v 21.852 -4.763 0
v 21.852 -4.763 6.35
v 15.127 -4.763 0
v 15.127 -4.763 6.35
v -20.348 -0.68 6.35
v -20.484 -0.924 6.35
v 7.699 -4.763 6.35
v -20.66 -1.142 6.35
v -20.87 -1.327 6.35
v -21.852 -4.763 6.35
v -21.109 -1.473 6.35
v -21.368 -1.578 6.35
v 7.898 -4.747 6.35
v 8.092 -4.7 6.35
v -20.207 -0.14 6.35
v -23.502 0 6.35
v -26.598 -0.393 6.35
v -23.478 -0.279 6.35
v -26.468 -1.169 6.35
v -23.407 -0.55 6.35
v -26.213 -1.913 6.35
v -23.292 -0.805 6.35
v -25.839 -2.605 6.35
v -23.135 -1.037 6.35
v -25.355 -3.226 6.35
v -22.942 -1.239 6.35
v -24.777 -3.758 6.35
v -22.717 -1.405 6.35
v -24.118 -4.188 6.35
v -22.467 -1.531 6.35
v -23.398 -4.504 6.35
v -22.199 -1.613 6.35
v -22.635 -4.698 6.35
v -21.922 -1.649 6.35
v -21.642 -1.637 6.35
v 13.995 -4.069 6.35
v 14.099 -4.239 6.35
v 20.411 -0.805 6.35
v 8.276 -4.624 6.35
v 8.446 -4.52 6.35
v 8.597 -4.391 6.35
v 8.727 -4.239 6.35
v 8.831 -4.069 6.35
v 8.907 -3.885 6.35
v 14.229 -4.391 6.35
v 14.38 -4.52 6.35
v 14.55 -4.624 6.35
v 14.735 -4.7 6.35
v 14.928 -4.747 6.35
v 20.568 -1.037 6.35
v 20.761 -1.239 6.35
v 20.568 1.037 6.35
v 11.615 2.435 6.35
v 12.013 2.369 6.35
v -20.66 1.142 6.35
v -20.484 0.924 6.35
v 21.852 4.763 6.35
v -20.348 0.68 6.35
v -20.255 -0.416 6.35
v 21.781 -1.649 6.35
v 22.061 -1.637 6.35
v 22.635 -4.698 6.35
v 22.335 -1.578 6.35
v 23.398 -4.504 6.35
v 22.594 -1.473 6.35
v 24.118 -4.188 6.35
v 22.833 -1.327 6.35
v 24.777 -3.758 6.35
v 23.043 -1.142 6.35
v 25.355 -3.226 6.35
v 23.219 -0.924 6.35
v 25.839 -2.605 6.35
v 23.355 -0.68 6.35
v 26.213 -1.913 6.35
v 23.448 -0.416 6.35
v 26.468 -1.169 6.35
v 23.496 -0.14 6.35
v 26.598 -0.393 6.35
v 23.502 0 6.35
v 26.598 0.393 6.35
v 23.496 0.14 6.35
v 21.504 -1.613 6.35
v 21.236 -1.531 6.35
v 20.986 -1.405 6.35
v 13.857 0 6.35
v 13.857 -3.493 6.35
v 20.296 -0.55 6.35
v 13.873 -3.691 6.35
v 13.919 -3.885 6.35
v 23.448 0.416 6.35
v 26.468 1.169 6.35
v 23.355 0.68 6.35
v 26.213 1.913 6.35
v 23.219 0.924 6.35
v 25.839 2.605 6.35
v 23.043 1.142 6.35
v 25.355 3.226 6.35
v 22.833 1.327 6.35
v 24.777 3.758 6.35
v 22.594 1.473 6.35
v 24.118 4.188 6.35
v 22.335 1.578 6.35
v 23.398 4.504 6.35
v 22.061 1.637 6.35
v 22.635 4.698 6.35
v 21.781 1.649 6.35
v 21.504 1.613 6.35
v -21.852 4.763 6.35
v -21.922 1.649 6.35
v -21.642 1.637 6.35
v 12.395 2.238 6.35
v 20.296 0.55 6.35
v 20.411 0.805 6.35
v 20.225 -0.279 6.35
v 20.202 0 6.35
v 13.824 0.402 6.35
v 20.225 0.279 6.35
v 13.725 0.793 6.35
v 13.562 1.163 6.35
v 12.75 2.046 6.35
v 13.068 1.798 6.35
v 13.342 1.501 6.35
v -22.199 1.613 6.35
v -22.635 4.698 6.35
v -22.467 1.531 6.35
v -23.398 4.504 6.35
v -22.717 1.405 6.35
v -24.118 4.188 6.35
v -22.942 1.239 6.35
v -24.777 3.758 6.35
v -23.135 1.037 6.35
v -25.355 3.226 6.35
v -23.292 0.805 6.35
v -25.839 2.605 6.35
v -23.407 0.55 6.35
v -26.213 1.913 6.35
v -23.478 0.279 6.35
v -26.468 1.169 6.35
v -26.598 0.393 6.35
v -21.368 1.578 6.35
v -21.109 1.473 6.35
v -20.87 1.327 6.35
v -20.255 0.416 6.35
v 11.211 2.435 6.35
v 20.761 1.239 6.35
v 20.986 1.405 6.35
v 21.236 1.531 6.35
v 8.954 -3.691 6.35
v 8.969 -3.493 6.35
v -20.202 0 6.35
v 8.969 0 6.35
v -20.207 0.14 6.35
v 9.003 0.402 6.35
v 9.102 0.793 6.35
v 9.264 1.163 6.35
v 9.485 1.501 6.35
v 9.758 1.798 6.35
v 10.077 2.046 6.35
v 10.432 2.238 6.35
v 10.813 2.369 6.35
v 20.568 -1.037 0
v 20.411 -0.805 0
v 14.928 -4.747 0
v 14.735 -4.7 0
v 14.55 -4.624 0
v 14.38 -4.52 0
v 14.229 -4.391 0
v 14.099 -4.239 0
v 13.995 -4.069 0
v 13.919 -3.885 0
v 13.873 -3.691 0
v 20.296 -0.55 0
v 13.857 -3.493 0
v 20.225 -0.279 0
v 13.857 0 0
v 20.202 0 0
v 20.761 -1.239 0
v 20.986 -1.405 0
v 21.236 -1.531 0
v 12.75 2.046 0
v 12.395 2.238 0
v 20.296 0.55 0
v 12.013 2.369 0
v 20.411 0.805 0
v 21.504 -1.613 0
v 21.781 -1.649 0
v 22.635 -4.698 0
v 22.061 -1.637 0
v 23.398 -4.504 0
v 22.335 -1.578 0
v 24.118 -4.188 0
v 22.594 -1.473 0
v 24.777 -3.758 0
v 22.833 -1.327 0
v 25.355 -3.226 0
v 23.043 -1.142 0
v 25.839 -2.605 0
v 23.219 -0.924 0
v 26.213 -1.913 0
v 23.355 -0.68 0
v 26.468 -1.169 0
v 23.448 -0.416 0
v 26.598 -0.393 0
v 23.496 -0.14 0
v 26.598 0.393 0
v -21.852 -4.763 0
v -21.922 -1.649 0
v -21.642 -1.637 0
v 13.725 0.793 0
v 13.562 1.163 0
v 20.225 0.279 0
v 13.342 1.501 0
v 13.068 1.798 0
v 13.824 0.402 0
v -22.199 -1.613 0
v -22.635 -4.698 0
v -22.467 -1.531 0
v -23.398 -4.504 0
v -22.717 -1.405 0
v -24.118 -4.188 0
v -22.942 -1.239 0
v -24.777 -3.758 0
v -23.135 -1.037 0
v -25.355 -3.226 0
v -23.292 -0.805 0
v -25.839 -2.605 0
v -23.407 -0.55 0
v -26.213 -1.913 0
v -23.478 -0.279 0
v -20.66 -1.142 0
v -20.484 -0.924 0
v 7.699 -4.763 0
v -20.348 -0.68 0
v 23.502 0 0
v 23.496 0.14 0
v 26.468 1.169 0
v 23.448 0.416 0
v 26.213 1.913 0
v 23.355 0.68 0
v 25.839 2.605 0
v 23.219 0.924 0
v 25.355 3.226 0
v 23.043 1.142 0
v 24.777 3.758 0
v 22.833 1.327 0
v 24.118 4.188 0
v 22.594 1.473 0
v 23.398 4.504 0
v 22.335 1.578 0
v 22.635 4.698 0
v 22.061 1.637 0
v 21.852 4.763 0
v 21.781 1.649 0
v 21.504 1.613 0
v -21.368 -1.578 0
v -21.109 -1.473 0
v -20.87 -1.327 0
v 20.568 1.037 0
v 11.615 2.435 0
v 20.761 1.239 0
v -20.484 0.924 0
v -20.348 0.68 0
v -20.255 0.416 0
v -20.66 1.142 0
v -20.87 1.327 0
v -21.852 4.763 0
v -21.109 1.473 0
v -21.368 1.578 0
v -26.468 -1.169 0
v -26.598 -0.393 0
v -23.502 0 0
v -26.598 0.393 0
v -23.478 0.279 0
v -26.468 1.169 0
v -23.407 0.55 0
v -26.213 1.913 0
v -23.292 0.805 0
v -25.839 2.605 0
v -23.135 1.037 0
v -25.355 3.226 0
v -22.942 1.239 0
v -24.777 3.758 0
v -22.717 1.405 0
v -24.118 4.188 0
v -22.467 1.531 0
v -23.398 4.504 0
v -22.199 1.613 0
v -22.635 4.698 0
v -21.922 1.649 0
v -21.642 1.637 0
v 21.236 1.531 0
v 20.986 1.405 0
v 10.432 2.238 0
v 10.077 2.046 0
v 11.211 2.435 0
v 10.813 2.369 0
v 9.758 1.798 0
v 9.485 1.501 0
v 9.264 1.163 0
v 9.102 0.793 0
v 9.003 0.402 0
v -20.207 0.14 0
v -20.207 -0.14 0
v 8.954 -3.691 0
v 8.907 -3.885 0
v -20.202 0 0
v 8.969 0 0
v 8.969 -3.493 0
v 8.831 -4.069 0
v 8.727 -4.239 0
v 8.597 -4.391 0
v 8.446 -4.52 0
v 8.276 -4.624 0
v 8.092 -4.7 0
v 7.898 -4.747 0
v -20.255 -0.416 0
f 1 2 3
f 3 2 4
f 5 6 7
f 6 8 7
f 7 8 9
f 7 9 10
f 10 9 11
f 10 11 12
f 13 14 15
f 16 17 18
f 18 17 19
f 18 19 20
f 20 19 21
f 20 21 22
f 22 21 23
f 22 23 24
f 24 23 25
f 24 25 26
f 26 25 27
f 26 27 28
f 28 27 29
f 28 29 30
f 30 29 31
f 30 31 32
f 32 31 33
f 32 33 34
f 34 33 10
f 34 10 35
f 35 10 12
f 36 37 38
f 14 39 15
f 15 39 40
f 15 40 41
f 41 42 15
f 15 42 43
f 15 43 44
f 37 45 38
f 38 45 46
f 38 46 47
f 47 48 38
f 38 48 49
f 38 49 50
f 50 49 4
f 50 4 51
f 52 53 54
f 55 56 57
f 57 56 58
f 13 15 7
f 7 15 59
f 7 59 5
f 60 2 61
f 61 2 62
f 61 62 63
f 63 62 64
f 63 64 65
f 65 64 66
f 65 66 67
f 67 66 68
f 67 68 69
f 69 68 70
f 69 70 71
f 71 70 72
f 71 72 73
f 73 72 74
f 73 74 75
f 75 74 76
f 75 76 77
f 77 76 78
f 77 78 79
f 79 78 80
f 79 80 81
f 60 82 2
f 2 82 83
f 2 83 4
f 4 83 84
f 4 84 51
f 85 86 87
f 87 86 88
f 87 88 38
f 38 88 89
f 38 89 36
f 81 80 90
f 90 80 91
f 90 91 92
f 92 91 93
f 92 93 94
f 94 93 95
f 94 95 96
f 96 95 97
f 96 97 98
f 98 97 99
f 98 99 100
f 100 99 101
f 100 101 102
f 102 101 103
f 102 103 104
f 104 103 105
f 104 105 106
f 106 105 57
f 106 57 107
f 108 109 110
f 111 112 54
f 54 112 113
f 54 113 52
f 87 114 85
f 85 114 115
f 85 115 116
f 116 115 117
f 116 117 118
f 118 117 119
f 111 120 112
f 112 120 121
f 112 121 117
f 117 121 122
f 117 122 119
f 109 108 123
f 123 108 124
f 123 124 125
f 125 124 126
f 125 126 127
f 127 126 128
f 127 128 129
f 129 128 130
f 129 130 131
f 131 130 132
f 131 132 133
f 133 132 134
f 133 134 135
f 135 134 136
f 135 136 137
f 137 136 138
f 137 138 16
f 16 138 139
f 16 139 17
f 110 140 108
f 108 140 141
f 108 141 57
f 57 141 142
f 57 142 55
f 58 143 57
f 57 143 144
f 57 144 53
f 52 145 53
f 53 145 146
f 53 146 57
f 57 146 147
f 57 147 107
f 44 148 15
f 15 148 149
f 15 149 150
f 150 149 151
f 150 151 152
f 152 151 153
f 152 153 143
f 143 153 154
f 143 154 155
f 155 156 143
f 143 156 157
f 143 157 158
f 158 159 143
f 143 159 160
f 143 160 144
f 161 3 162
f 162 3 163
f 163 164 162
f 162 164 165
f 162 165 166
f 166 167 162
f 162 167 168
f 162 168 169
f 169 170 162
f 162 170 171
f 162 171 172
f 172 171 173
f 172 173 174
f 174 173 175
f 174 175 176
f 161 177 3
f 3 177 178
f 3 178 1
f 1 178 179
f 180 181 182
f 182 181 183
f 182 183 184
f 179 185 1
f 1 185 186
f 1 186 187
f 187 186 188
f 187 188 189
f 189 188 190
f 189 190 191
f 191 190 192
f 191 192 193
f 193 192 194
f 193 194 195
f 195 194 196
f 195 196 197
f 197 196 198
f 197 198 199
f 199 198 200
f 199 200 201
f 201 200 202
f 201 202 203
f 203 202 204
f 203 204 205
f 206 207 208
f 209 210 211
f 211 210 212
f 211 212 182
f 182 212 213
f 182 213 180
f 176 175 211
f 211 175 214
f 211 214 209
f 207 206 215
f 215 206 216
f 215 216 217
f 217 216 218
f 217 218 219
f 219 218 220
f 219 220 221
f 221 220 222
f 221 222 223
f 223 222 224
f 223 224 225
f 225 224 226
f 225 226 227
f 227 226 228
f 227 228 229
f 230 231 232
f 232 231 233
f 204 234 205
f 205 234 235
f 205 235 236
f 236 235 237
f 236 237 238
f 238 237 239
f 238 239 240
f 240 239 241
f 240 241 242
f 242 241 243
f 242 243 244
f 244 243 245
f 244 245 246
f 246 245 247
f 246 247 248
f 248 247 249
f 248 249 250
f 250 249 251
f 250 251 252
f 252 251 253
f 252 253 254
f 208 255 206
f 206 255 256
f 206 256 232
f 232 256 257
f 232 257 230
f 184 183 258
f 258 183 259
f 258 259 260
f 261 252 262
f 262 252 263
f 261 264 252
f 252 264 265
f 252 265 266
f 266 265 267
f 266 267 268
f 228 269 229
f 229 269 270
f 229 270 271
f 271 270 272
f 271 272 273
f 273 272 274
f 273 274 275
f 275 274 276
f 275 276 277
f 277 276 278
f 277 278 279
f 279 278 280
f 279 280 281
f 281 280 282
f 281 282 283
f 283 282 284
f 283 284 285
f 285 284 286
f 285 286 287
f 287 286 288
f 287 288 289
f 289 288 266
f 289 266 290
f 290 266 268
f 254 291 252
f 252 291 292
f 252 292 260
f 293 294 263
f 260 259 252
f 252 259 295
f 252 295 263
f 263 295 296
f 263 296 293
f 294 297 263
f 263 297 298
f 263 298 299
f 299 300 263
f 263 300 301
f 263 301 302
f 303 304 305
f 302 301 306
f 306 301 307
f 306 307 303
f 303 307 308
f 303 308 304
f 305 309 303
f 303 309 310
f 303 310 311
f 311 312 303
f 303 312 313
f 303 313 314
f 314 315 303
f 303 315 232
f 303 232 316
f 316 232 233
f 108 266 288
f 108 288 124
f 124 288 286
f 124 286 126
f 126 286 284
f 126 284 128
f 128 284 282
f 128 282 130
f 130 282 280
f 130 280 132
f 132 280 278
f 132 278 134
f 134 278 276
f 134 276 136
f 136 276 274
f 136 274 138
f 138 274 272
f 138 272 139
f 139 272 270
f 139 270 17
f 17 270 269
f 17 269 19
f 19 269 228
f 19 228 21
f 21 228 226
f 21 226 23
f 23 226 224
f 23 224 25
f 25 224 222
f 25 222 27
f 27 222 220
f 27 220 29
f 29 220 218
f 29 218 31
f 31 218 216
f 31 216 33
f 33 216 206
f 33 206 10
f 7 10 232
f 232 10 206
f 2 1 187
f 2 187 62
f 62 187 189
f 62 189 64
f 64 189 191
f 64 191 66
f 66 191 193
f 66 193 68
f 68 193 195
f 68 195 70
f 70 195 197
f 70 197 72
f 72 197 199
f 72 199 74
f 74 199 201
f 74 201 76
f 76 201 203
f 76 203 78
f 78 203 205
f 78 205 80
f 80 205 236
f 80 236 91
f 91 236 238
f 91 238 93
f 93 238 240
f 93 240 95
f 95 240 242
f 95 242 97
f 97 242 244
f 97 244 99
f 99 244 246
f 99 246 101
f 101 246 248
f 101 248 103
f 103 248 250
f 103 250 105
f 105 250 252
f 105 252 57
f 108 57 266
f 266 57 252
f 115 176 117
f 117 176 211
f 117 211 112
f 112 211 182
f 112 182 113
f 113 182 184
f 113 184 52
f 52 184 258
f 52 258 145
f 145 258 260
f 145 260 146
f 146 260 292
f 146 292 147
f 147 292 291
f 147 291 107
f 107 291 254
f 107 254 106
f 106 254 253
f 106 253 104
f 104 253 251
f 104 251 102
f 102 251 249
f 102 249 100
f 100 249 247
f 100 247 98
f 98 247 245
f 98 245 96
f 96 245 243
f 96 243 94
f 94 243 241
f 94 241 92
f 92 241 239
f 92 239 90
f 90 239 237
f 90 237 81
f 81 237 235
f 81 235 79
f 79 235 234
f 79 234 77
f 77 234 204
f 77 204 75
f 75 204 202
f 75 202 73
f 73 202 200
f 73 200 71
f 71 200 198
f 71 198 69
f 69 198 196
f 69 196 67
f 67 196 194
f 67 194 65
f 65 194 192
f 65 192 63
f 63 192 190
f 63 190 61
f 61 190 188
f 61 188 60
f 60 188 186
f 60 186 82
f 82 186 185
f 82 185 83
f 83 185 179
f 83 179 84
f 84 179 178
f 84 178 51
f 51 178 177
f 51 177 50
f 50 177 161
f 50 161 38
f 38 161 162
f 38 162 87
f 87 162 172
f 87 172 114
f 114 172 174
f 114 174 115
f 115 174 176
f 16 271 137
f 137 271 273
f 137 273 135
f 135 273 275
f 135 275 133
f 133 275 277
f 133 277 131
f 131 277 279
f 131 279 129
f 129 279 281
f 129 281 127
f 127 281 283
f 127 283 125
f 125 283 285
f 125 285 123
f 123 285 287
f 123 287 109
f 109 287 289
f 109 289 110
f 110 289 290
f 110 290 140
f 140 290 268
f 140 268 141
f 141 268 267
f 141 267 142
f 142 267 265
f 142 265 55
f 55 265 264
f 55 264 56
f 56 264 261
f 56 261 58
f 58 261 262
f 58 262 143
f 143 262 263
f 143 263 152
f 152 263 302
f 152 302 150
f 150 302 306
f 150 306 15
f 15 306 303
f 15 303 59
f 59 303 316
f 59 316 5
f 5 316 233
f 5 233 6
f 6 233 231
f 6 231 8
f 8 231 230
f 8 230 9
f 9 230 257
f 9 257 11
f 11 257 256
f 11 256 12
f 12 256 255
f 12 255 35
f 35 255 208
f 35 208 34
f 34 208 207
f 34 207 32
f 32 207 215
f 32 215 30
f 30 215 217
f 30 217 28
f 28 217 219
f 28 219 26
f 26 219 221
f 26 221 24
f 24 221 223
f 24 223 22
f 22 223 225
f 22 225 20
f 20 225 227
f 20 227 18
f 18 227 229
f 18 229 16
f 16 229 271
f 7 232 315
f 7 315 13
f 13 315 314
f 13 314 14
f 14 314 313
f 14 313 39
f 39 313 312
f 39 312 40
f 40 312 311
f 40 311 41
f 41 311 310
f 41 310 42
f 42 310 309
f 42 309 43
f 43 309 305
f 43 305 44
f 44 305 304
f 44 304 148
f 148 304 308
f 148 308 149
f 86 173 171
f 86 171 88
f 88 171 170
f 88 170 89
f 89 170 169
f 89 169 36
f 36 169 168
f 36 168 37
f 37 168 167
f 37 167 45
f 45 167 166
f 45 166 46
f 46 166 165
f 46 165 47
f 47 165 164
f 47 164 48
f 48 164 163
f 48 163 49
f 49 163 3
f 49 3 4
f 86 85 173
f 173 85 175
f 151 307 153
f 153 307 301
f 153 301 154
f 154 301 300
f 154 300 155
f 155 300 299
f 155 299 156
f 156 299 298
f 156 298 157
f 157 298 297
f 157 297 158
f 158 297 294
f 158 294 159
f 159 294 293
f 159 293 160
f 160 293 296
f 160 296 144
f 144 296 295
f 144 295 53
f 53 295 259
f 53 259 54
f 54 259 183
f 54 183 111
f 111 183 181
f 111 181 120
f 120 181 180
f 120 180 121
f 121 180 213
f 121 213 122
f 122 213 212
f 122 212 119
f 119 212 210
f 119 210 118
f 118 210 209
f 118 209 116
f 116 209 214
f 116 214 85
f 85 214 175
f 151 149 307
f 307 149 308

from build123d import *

# Parameters (mm, degrees)
SKETCH1_R           = 1.65
BOSS_EXTRUDE1_DEPTH = 6.35
CUT_EXTRUDE3_DEPTH  = 28.772450308


with BuildPart() as part:
    # Sketch1 → Boss-Extrude1 (new body)
    with BuildSketch(Plane.XY):
        with BuildLine():
            Line((-21.851501763, 4.7625), (21.851501763, 4.7625))
            ThreePointArc((21.851501763, 4.7625), (26.614001763, 0), (21.851501763, -4.7625))
            Line((21.851501763, -4.7625), (-21.851501763, -4.7625))
            ThreePointArc((-21.851501763, -4.7625), (-26.614001763, 0), (-21.851501763, 4.7625))
        make_face()
        with Locations((21.851501763, 0)):
            Circle(SKETCH1_R, mode=Mode.SUBTRACT)
        with Locations((-21.851501763, 0)):
            Circle(SKETCH1_R, mode=Mode.SUBTRACT)
    extrude(amount=BOSS_EXTRUDE1_DEPTH)

    # Sketch4 → Cut-Extrude3 (cut, through all)
    with BuildSketch(Plane(origin=(0, 0, 0), x_dir=(-1, 0, 0), z_dir=(0, 0, -1))):
        with BuildLine():
            Line((-8.969452091, 0), (-8.969452091, -3.4925))
            ThreePointArc((-8.969452091, -3.4925), (-8.597477703, -4.390525612), (-7.699452091, -4.7625))
            Line((-7.699452091, -4.7625), (-15.126952091, -4.7625))
            ThreePointArc((-15.126952091, -4.7625), (-14.228926479, -4.390525612), (-13.856952091, -3.4925))
            Line((-13.856952091, -3.4925), (-13.856952091, 0))
            ThreePointArc((-13.856952091, 0), (-11.413202091, 2.44375), (-8.969452091, 0))
        make_face()
    extrude(amount=-CUT_EXTRUDE3_DEPTH, mode=Mode.SUBTRACT)


solid = part.part
